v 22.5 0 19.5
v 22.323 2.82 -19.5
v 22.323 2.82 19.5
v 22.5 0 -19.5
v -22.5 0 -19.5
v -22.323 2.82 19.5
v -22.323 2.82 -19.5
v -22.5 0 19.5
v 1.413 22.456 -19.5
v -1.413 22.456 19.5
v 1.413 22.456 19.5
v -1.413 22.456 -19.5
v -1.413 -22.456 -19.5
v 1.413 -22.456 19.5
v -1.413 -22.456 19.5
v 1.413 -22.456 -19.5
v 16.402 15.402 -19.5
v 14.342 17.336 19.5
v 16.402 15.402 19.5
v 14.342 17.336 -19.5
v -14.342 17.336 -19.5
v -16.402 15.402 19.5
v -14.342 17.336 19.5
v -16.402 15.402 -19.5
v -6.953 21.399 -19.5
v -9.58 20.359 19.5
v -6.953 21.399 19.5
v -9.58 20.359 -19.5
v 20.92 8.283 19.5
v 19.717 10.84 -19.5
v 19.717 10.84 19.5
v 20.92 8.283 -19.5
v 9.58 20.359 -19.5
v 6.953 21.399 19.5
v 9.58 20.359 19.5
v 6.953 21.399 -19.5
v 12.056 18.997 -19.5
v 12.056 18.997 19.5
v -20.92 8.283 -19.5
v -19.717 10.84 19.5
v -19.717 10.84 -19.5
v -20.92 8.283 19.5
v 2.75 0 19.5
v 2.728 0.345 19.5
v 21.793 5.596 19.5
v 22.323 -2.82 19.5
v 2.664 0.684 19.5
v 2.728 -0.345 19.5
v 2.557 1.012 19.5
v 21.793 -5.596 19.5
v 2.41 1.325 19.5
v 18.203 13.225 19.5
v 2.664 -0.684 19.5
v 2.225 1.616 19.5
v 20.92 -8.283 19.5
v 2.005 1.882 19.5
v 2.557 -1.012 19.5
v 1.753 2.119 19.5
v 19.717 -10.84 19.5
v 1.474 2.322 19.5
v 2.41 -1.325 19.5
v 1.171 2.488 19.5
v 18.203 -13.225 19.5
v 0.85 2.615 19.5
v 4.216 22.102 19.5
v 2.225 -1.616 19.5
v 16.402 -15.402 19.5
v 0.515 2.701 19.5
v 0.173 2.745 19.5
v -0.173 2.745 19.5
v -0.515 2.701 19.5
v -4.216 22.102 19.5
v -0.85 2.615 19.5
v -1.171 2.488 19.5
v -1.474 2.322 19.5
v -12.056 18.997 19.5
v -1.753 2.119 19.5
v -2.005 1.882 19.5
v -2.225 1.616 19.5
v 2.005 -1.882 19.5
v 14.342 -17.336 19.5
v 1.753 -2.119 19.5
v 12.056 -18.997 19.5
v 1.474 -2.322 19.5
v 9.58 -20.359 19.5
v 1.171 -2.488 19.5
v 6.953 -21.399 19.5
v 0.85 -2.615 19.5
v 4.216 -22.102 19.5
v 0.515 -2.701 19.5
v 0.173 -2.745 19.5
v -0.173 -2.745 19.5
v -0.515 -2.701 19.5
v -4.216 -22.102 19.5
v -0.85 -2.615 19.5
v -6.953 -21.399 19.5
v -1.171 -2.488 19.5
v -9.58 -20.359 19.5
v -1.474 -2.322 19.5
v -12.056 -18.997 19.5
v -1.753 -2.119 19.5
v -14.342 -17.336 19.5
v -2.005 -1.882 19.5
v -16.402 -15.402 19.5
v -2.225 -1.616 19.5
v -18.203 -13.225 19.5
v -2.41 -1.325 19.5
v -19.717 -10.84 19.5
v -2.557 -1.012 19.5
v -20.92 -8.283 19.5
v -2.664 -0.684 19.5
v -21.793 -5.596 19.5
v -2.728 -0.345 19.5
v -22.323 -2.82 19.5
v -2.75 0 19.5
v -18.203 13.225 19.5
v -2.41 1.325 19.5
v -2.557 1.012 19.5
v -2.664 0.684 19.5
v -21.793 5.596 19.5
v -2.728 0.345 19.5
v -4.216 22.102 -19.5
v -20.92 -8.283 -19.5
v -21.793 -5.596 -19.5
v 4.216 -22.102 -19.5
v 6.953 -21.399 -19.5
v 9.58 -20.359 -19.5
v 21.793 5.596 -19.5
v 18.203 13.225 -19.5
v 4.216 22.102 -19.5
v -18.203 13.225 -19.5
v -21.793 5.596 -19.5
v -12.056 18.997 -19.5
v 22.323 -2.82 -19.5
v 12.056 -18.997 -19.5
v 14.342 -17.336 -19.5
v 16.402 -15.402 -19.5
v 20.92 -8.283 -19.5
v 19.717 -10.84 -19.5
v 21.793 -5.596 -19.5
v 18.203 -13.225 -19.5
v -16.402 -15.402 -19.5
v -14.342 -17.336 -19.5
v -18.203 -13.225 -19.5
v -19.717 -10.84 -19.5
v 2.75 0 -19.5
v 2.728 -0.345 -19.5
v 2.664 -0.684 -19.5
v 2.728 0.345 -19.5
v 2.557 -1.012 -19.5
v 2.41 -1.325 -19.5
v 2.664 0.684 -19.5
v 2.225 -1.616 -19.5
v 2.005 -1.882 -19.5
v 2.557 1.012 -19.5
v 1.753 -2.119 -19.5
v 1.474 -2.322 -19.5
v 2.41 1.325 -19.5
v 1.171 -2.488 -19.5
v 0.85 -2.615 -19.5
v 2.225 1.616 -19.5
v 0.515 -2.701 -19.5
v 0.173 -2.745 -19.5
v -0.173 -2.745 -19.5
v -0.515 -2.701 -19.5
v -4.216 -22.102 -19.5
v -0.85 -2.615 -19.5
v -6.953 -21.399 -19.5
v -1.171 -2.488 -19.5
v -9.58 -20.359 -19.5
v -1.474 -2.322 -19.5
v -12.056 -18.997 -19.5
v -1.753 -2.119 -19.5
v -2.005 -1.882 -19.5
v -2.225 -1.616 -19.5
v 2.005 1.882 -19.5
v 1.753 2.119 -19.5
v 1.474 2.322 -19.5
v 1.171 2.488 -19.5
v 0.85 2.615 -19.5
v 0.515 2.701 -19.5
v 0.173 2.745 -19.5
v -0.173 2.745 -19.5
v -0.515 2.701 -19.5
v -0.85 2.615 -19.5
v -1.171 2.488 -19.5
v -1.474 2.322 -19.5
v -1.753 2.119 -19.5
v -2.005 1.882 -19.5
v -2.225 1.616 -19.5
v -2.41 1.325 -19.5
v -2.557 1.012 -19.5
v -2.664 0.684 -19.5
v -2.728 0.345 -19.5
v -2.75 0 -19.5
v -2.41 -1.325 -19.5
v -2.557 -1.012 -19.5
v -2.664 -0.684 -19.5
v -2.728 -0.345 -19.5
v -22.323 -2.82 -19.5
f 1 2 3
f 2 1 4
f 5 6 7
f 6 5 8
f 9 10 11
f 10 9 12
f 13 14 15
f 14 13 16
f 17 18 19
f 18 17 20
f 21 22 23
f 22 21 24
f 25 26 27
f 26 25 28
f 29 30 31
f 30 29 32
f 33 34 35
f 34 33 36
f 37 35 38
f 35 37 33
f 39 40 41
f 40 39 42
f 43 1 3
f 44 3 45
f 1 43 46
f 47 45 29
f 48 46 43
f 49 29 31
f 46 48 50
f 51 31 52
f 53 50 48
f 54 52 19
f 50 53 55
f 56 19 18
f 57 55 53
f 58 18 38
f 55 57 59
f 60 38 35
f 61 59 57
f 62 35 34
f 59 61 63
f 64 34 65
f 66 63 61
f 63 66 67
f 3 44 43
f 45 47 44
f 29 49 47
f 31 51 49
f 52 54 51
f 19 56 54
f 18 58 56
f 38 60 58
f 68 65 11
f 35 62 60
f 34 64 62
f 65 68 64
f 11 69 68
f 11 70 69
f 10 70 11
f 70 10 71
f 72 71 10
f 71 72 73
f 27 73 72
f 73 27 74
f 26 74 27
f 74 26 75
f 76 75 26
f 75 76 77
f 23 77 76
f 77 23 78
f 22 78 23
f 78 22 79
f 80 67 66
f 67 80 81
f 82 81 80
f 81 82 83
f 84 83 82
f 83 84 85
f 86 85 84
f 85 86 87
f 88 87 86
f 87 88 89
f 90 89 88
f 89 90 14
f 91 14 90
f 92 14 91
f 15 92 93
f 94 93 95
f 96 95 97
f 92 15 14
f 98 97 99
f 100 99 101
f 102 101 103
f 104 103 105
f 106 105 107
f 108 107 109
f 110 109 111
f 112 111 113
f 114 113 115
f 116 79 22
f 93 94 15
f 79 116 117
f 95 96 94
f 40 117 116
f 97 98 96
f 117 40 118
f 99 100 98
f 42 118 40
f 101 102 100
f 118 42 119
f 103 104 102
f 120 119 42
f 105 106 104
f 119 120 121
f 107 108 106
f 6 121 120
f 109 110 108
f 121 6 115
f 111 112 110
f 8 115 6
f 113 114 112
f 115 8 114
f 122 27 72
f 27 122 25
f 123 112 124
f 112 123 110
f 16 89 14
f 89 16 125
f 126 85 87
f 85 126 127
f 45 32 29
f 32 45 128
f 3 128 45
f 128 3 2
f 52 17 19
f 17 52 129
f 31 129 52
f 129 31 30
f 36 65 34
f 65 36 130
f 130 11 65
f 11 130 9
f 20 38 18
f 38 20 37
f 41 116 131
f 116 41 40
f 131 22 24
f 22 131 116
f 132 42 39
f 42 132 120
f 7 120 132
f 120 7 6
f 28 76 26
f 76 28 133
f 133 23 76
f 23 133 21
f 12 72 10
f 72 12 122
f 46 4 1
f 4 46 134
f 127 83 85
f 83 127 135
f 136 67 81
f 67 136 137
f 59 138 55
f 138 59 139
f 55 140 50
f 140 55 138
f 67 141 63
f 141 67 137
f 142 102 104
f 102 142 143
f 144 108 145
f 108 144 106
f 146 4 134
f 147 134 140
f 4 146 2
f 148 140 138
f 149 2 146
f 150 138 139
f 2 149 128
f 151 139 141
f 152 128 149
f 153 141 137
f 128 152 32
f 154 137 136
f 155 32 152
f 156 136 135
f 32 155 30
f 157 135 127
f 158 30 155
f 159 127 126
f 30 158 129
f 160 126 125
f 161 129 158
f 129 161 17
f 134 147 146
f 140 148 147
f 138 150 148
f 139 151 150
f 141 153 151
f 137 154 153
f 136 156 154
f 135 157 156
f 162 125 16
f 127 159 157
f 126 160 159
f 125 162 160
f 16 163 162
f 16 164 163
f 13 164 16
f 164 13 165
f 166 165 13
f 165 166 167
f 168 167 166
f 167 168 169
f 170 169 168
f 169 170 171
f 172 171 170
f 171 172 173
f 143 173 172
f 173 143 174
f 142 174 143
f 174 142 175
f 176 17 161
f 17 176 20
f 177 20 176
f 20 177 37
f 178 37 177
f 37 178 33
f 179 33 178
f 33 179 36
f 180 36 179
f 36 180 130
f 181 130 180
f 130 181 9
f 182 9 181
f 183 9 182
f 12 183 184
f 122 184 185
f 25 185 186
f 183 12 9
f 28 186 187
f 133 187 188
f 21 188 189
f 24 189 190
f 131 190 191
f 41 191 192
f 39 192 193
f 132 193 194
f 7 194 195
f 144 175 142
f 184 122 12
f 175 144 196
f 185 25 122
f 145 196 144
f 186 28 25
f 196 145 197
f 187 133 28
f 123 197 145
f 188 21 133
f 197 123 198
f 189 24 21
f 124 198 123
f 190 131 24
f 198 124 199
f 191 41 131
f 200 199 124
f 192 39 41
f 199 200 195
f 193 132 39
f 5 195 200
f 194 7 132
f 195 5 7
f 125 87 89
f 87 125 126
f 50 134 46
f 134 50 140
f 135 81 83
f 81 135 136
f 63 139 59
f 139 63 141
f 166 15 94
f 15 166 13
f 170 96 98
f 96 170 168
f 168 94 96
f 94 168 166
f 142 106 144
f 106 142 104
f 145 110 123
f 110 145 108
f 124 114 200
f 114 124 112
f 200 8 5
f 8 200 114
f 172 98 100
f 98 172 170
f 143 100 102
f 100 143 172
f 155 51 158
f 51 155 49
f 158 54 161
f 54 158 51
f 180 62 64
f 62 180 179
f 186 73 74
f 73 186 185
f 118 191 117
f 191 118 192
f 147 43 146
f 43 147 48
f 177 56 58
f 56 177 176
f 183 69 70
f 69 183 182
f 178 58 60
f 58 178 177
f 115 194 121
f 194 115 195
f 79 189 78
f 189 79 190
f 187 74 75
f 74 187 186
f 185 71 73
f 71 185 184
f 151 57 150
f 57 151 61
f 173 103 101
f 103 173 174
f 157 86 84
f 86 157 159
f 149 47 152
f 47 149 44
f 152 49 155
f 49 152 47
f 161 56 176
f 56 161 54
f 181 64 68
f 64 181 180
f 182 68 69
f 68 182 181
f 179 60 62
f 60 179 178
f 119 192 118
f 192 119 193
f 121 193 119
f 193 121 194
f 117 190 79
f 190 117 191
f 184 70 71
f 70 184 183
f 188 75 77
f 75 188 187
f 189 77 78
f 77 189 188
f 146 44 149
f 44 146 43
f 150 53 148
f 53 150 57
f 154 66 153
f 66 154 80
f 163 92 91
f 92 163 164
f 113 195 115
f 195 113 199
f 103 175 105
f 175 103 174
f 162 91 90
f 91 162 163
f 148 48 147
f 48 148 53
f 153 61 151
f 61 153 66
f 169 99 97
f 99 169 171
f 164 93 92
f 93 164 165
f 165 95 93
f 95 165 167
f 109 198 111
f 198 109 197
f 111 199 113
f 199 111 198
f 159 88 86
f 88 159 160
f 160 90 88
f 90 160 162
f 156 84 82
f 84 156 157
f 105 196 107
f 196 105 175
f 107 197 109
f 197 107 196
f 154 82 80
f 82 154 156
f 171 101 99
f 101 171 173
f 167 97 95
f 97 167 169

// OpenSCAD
$fn = 50;


difference() {
	union() {
		translate(v = [0, 0, -19.5000000000]) {
			cylinder(h = 39, r = 22.5000000000);
		}
	}
	union() {
		translate(v = [0, 0, -100.0000000000]) {
			cylinder(h = 200, r = 2.7500000000);
		}
	}
}
